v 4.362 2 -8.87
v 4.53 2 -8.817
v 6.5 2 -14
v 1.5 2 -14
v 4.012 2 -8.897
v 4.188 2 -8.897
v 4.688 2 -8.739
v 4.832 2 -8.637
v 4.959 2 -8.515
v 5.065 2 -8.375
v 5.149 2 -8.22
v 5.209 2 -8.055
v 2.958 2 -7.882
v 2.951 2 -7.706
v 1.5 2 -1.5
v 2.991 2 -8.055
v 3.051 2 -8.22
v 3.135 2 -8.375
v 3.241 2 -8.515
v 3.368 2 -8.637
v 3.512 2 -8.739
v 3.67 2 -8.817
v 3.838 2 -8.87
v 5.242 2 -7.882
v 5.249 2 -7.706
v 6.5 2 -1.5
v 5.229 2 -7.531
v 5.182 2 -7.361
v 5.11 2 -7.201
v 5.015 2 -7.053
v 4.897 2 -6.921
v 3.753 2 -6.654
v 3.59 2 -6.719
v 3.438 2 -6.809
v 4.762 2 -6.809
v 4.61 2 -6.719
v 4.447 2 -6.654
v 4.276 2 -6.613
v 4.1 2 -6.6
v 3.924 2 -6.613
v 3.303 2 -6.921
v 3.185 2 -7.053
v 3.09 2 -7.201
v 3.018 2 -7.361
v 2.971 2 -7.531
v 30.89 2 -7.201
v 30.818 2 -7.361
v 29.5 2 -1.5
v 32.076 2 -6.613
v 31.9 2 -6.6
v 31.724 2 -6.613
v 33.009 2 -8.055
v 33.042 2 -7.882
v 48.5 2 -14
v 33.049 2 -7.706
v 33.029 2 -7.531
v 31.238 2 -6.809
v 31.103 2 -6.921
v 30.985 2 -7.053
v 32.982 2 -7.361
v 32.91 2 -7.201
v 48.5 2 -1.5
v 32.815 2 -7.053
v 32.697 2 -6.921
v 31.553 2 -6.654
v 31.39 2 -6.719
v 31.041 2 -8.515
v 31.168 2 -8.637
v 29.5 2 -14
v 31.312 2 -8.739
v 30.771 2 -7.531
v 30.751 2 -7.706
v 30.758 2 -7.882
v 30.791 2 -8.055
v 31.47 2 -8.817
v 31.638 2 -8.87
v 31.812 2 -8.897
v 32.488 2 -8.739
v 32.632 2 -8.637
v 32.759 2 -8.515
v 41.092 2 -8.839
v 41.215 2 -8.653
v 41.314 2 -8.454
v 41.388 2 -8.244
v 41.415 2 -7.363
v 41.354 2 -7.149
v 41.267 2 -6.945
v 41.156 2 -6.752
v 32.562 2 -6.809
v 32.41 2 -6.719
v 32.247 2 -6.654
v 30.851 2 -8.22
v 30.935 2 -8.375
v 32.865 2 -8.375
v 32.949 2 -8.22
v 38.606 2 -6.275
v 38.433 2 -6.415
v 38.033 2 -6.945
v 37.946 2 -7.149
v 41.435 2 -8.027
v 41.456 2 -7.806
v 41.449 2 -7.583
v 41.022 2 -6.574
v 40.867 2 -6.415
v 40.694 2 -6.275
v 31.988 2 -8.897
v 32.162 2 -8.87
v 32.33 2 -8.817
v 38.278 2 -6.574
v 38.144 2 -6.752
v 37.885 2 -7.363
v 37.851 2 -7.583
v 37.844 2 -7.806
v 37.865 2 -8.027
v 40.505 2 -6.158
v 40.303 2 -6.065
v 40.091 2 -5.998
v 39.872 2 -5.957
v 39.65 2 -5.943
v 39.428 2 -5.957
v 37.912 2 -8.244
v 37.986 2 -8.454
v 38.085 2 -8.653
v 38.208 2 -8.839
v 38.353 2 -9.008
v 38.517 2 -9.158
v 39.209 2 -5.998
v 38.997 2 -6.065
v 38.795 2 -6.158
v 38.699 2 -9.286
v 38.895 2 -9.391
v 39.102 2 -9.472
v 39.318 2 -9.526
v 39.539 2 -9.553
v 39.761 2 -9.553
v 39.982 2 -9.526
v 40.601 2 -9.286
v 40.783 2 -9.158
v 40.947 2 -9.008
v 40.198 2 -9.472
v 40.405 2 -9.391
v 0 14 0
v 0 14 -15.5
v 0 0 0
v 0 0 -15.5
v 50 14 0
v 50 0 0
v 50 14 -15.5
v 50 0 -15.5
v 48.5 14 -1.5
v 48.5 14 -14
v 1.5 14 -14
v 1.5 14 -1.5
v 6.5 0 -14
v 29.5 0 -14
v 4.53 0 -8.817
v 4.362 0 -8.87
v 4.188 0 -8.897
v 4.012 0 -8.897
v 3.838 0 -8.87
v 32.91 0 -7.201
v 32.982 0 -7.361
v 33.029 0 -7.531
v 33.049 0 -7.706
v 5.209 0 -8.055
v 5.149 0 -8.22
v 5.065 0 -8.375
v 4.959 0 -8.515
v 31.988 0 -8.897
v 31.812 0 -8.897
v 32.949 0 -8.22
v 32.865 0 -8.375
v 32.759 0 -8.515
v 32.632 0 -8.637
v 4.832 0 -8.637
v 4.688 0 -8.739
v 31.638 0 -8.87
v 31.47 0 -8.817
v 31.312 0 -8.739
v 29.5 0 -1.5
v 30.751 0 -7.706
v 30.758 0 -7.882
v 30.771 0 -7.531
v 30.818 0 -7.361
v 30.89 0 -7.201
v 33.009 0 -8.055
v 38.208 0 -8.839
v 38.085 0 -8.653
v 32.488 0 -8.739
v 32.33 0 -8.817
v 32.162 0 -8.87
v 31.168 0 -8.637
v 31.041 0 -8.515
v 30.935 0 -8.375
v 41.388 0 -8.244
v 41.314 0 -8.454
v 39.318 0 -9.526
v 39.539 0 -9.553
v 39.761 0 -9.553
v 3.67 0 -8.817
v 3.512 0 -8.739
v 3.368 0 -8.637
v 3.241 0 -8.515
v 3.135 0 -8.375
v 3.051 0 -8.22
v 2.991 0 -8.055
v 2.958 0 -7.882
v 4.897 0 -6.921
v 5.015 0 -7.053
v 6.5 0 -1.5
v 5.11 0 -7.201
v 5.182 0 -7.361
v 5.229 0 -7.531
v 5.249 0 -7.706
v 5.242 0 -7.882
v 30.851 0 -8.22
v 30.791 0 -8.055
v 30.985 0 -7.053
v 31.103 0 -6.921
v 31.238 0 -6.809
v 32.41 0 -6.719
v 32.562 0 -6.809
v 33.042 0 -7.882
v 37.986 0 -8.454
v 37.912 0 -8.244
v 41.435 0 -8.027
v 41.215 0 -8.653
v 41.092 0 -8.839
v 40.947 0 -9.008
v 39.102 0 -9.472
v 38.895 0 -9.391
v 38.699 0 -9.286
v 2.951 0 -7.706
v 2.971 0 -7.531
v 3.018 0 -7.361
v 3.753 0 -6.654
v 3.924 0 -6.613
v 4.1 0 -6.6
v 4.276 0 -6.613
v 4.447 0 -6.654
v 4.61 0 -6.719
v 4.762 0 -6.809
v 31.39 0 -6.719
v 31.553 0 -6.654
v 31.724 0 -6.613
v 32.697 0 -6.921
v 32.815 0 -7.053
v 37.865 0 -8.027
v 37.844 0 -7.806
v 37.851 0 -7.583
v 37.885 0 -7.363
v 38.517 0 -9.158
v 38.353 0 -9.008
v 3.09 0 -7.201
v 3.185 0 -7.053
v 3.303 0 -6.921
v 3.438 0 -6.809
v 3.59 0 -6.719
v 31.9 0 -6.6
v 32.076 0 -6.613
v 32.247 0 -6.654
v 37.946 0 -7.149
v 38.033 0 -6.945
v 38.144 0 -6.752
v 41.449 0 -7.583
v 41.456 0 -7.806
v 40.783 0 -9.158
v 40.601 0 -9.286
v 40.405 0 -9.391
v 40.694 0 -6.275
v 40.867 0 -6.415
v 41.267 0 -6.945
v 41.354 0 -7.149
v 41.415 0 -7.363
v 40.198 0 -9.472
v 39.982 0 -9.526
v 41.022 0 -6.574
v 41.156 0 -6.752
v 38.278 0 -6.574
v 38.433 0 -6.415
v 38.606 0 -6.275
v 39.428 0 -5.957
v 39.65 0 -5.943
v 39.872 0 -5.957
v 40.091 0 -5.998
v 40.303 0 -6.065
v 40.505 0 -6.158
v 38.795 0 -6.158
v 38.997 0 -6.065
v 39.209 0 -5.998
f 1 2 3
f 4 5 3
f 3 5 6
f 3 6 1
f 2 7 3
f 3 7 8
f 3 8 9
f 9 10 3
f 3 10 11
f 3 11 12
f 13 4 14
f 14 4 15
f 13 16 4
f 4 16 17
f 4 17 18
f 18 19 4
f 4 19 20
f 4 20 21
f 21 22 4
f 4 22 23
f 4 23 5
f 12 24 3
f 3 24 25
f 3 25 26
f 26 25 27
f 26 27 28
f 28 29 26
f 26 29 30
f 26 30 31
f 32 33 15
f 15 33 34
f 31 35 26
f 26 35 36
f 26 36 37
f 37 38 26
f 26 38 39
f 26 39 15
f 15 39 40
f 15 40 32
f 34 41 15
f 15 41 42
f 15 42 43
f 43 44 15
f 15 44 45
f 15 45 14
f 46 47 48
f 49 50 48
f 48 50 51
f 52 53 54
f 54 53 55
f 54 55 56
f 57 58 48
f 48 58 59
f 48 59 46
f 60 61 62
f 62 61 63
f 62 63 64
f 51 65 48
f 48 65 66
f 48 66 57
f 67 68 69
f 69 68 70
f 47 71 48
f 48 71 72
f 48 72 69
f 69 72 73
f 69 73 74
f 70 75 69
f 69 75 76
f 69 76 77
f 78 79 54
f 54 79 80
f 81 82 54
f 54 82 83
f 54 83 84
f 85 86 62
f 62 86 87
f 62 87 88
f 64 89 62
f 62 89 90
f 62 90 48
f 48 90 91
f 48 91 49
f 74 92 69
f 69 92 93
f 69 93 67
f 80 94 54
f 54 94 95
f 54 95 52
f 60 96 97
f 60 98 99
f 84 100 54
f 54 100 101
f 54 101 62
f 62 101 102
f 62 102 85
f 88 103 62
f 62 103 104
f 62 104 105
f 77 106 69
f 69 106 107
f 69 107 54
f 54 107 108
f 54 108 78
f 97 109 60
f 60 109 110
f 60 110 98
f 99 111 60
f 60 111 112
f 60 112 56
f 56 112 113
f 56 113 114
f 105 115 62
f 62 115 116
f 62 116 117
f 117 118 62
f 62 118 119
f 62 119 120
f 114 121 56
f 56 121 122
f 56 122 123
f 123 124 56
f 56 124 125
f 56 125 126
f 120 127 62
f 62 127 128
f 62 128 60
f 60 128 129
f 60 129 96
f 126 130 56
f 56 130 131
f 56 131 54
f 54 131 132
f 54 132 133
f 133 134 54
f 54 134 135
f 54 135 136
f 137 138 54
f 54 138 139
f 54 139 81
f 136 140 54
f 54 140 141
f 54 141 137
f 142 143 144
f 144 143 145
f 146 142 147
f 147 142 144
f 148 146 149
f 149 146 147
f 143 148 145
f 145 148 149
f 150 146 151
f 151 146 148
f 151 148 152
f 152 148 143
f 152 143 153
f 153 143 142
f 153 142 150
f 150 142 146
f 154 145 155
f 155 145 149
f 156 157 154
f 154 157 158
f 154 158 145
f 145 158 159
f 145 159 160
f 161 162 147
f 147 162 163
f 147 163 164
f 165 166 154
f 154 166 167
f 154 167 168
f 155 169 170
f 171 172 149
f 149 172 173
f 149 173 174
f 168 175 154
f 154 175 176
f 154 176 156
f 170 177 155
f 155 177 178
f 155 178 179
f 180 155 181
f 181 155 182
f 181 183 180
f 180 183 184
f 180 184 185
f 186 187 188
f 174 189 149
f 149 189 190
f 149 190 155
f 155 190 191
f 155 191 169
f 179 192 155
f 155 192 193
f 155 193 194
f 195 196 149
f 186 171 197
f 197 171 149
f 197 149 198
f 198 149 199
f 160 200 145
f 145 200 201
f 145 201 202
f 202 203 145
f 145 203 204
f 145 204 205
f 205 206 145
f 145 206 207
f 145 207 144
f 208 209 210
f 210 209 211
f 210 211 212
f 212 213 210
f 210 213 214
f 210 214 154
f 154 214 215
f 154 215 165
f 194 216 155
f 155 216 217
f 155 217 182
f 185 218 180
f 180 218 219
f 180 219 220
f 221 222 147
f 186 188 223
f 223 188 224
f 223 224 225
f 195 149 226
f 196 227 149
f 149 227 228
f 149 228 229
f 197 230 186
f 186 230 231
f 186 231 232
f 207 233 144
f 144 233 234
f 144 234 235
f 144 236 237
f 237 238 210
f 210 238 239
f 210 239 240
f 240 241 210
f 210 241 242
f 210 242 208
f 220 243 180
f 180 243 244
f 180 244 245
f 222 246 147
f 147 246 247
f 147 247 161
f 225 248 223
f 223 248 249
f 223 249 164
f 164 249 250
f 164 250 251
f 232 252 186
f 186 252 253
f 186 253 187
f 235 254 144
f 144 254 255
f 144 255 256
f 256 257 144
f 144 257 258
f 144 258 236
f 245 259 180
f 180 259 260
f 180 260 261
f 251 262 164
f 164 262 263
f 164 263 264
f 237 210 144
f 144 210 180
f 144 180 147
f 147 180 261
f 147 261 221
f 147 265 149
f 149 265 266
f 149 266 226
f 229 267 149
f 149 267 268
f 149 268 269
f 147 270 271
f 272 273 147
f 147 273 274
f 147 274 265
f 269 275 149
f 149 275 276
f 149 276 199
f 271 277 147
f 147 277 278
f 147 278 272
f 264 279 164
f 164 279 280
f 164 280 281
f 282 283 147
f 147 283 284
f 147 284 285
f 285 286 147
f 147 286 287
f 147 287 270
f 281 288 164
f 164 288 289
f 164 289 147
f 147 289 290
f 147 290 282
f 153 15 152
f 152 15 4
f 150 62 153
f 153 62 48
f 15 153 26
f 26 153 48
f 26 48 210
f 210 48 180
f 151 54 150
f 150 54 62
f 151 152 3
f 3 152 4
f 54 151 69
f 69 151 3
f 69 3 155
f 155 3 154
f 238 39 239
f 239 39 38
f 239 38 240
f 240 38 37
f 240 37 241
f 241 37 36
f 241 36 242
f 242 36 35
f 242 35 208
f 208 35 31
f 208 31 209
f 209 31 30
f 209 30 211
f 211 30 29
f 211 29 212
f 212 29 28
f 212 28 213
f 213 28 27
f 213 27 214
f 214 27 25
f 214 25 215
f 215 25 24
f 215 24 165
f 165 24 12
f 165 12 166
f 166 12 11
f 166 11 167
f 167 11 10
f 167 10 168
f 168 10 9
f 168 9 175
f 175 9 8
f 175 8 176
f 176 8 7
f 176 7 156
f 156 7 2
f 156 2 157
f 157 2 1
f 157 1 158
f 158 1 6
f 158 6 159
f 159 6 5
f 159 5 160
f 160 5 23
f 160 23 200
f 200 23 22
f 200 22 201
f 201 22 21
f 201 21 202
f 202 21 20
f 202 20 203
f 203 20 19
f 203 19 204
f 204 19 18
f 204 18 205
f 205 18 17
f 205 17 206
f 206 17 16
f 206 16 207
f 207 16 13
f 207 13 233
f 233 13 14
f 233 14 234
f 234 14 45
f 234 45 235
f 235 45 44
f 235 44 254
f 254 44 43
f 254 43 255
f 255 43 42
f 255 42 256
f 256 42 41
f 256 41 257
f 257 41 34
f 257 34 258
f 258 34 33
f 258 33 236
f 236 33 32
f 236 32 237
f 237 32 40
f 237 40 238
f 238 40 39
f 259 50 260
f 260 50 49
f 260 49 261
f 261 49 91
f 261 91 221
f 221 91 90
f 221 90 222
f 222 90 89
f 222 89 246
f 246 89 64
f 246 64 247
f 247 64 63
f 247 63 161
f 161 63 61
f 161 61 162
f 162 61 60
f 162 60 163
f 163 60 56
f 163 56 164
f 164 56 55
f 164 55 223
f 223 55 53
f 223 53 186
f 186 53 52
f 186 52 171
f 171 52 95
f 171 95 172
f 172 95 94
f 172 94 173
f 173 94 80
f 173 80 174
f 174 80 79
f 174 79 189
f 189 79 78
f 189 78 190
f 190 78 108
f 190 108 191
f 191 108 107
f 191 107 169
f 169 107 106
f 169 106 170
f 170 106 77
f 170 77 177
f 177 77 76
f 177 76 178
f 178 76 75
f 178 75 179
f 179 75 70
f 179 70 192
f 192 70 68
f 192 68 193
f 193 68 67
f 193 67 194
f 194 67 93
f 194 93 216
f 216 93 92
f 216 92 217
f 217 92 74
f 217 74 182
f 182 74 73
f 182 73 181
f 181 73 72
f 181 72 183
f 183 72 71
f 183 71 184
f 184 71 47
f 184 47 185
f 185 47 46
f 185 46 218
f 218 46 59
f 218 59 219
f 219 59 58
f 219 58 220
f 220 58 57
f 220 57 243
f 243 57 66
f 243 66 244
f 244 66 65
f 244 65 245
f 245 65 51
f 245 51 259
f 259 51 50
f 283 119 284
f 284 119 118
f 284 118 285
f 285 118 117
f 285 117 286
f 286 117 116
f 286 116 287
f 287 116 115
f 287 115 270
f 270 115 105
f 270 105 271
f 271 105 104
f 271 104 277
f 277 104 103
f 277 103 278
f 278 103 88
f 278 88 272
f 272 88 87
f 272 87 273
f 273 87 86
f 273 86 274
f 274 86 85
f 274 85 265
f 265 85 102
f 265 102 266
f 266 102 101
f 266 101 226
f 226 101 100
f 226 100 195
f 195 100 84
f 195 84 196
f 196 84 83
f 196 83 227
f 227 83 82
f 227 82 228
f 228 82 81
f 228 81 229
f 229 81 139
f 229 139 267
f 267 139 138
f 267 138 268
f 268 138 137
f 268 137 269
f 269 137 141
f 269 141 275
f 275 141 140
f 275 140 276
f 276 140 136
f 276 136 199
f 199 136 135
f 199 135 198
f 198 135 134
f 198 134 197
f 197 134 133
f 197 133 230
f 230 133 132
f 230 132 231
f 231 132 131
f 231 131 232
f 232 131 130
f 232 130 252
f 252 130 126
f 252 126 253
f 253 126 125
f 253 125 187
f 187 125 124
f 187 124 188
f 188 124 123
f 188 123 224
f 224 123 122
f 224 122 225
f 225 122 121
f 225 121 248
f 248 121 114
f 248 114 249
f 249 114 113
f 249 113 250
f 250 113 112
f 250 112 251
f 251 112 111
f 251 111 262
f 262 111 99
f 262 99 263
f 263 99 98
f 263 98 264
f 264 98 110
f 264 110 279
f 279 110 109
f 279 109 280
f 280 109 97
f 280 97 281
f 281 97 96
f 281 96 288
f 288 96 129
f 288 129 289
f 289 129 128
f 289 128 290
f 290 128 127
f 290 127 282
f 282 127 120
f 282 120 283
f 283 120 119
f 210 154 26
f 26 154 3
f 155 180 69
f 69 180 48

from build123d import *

# Parameters (mm, degrees)
SKETCH_1_W          = 50
SKETCH_1_H          = 15.5
EXTRUDE_1_DEPTH     = 14
SKETCH_2_W          = 47
SKETCH_2_H          = 12.5
CUT_EXTRUDE_1_DEPTH = 12
SKETCH_4_R          = 1.15
SKETCH_4_R_2        = 1.806882298
SKETCH_4_W          = 23
SKETCH_4_H          = 12.5
CUT_EXTRUDE_2_DEPTH = 2


with BuildPart() as part:
    # 草图1 → 凸台-拉伸1 (new body)
    with BuildSketch(Plane(origin=(0, 0, 0), x_dir=(1, 0, 0), z_dir=(0, 1, 0))):
        with Locations((25, 7.75)):
            Rectangle(SKETCH_1_W, SKETCH_1_H)
    extrude(amount=EXTRUDE_1_DEPTH)

    # 草图2 → 切除-拉伸1 (cut)
    with BuildSketch(Plane(origin=(0, 14, 0), x_dir=(1, 0, 0), z_dir=(0, 1, 0))):
        with Locations((25, 7.75)):
            Rectangle(SKETCH_2_W, SKETCH_2_H)
    extrude(amount=-CUT_EXTRUDE_1_DEPTH, mode=Mode.SUBTRACT)

    # 草图4 → 切除-拉伸2 (cut)
    with BuildSketch(Plane(origin=(0, 2, 0), x_dir=(1, 0, 0), z_dir=(0, 1, 0))):
        with Locations(Location((4.1, 7.75, 0), (0, 0, 270))):
            Circle(SKETCH_4_R)
        with Locations(Location((31.9, 7.75, 0), (0, 0, 270))):
            Circle(SKETCH_4_R)
        with Locations(Location((39.65, 7.75, 0), (0, 0, 270))):
            Circle(SKETCH_4_R_2)
        with Locations((18, 7.75)):
            Rectangle(SKETCH_4_W, SKETCH_4_H)
    extrude(amount=-CUT_EXTRUDE_2_DEPTH, mode=Mode.SUBTRACT)


solid = part.part
